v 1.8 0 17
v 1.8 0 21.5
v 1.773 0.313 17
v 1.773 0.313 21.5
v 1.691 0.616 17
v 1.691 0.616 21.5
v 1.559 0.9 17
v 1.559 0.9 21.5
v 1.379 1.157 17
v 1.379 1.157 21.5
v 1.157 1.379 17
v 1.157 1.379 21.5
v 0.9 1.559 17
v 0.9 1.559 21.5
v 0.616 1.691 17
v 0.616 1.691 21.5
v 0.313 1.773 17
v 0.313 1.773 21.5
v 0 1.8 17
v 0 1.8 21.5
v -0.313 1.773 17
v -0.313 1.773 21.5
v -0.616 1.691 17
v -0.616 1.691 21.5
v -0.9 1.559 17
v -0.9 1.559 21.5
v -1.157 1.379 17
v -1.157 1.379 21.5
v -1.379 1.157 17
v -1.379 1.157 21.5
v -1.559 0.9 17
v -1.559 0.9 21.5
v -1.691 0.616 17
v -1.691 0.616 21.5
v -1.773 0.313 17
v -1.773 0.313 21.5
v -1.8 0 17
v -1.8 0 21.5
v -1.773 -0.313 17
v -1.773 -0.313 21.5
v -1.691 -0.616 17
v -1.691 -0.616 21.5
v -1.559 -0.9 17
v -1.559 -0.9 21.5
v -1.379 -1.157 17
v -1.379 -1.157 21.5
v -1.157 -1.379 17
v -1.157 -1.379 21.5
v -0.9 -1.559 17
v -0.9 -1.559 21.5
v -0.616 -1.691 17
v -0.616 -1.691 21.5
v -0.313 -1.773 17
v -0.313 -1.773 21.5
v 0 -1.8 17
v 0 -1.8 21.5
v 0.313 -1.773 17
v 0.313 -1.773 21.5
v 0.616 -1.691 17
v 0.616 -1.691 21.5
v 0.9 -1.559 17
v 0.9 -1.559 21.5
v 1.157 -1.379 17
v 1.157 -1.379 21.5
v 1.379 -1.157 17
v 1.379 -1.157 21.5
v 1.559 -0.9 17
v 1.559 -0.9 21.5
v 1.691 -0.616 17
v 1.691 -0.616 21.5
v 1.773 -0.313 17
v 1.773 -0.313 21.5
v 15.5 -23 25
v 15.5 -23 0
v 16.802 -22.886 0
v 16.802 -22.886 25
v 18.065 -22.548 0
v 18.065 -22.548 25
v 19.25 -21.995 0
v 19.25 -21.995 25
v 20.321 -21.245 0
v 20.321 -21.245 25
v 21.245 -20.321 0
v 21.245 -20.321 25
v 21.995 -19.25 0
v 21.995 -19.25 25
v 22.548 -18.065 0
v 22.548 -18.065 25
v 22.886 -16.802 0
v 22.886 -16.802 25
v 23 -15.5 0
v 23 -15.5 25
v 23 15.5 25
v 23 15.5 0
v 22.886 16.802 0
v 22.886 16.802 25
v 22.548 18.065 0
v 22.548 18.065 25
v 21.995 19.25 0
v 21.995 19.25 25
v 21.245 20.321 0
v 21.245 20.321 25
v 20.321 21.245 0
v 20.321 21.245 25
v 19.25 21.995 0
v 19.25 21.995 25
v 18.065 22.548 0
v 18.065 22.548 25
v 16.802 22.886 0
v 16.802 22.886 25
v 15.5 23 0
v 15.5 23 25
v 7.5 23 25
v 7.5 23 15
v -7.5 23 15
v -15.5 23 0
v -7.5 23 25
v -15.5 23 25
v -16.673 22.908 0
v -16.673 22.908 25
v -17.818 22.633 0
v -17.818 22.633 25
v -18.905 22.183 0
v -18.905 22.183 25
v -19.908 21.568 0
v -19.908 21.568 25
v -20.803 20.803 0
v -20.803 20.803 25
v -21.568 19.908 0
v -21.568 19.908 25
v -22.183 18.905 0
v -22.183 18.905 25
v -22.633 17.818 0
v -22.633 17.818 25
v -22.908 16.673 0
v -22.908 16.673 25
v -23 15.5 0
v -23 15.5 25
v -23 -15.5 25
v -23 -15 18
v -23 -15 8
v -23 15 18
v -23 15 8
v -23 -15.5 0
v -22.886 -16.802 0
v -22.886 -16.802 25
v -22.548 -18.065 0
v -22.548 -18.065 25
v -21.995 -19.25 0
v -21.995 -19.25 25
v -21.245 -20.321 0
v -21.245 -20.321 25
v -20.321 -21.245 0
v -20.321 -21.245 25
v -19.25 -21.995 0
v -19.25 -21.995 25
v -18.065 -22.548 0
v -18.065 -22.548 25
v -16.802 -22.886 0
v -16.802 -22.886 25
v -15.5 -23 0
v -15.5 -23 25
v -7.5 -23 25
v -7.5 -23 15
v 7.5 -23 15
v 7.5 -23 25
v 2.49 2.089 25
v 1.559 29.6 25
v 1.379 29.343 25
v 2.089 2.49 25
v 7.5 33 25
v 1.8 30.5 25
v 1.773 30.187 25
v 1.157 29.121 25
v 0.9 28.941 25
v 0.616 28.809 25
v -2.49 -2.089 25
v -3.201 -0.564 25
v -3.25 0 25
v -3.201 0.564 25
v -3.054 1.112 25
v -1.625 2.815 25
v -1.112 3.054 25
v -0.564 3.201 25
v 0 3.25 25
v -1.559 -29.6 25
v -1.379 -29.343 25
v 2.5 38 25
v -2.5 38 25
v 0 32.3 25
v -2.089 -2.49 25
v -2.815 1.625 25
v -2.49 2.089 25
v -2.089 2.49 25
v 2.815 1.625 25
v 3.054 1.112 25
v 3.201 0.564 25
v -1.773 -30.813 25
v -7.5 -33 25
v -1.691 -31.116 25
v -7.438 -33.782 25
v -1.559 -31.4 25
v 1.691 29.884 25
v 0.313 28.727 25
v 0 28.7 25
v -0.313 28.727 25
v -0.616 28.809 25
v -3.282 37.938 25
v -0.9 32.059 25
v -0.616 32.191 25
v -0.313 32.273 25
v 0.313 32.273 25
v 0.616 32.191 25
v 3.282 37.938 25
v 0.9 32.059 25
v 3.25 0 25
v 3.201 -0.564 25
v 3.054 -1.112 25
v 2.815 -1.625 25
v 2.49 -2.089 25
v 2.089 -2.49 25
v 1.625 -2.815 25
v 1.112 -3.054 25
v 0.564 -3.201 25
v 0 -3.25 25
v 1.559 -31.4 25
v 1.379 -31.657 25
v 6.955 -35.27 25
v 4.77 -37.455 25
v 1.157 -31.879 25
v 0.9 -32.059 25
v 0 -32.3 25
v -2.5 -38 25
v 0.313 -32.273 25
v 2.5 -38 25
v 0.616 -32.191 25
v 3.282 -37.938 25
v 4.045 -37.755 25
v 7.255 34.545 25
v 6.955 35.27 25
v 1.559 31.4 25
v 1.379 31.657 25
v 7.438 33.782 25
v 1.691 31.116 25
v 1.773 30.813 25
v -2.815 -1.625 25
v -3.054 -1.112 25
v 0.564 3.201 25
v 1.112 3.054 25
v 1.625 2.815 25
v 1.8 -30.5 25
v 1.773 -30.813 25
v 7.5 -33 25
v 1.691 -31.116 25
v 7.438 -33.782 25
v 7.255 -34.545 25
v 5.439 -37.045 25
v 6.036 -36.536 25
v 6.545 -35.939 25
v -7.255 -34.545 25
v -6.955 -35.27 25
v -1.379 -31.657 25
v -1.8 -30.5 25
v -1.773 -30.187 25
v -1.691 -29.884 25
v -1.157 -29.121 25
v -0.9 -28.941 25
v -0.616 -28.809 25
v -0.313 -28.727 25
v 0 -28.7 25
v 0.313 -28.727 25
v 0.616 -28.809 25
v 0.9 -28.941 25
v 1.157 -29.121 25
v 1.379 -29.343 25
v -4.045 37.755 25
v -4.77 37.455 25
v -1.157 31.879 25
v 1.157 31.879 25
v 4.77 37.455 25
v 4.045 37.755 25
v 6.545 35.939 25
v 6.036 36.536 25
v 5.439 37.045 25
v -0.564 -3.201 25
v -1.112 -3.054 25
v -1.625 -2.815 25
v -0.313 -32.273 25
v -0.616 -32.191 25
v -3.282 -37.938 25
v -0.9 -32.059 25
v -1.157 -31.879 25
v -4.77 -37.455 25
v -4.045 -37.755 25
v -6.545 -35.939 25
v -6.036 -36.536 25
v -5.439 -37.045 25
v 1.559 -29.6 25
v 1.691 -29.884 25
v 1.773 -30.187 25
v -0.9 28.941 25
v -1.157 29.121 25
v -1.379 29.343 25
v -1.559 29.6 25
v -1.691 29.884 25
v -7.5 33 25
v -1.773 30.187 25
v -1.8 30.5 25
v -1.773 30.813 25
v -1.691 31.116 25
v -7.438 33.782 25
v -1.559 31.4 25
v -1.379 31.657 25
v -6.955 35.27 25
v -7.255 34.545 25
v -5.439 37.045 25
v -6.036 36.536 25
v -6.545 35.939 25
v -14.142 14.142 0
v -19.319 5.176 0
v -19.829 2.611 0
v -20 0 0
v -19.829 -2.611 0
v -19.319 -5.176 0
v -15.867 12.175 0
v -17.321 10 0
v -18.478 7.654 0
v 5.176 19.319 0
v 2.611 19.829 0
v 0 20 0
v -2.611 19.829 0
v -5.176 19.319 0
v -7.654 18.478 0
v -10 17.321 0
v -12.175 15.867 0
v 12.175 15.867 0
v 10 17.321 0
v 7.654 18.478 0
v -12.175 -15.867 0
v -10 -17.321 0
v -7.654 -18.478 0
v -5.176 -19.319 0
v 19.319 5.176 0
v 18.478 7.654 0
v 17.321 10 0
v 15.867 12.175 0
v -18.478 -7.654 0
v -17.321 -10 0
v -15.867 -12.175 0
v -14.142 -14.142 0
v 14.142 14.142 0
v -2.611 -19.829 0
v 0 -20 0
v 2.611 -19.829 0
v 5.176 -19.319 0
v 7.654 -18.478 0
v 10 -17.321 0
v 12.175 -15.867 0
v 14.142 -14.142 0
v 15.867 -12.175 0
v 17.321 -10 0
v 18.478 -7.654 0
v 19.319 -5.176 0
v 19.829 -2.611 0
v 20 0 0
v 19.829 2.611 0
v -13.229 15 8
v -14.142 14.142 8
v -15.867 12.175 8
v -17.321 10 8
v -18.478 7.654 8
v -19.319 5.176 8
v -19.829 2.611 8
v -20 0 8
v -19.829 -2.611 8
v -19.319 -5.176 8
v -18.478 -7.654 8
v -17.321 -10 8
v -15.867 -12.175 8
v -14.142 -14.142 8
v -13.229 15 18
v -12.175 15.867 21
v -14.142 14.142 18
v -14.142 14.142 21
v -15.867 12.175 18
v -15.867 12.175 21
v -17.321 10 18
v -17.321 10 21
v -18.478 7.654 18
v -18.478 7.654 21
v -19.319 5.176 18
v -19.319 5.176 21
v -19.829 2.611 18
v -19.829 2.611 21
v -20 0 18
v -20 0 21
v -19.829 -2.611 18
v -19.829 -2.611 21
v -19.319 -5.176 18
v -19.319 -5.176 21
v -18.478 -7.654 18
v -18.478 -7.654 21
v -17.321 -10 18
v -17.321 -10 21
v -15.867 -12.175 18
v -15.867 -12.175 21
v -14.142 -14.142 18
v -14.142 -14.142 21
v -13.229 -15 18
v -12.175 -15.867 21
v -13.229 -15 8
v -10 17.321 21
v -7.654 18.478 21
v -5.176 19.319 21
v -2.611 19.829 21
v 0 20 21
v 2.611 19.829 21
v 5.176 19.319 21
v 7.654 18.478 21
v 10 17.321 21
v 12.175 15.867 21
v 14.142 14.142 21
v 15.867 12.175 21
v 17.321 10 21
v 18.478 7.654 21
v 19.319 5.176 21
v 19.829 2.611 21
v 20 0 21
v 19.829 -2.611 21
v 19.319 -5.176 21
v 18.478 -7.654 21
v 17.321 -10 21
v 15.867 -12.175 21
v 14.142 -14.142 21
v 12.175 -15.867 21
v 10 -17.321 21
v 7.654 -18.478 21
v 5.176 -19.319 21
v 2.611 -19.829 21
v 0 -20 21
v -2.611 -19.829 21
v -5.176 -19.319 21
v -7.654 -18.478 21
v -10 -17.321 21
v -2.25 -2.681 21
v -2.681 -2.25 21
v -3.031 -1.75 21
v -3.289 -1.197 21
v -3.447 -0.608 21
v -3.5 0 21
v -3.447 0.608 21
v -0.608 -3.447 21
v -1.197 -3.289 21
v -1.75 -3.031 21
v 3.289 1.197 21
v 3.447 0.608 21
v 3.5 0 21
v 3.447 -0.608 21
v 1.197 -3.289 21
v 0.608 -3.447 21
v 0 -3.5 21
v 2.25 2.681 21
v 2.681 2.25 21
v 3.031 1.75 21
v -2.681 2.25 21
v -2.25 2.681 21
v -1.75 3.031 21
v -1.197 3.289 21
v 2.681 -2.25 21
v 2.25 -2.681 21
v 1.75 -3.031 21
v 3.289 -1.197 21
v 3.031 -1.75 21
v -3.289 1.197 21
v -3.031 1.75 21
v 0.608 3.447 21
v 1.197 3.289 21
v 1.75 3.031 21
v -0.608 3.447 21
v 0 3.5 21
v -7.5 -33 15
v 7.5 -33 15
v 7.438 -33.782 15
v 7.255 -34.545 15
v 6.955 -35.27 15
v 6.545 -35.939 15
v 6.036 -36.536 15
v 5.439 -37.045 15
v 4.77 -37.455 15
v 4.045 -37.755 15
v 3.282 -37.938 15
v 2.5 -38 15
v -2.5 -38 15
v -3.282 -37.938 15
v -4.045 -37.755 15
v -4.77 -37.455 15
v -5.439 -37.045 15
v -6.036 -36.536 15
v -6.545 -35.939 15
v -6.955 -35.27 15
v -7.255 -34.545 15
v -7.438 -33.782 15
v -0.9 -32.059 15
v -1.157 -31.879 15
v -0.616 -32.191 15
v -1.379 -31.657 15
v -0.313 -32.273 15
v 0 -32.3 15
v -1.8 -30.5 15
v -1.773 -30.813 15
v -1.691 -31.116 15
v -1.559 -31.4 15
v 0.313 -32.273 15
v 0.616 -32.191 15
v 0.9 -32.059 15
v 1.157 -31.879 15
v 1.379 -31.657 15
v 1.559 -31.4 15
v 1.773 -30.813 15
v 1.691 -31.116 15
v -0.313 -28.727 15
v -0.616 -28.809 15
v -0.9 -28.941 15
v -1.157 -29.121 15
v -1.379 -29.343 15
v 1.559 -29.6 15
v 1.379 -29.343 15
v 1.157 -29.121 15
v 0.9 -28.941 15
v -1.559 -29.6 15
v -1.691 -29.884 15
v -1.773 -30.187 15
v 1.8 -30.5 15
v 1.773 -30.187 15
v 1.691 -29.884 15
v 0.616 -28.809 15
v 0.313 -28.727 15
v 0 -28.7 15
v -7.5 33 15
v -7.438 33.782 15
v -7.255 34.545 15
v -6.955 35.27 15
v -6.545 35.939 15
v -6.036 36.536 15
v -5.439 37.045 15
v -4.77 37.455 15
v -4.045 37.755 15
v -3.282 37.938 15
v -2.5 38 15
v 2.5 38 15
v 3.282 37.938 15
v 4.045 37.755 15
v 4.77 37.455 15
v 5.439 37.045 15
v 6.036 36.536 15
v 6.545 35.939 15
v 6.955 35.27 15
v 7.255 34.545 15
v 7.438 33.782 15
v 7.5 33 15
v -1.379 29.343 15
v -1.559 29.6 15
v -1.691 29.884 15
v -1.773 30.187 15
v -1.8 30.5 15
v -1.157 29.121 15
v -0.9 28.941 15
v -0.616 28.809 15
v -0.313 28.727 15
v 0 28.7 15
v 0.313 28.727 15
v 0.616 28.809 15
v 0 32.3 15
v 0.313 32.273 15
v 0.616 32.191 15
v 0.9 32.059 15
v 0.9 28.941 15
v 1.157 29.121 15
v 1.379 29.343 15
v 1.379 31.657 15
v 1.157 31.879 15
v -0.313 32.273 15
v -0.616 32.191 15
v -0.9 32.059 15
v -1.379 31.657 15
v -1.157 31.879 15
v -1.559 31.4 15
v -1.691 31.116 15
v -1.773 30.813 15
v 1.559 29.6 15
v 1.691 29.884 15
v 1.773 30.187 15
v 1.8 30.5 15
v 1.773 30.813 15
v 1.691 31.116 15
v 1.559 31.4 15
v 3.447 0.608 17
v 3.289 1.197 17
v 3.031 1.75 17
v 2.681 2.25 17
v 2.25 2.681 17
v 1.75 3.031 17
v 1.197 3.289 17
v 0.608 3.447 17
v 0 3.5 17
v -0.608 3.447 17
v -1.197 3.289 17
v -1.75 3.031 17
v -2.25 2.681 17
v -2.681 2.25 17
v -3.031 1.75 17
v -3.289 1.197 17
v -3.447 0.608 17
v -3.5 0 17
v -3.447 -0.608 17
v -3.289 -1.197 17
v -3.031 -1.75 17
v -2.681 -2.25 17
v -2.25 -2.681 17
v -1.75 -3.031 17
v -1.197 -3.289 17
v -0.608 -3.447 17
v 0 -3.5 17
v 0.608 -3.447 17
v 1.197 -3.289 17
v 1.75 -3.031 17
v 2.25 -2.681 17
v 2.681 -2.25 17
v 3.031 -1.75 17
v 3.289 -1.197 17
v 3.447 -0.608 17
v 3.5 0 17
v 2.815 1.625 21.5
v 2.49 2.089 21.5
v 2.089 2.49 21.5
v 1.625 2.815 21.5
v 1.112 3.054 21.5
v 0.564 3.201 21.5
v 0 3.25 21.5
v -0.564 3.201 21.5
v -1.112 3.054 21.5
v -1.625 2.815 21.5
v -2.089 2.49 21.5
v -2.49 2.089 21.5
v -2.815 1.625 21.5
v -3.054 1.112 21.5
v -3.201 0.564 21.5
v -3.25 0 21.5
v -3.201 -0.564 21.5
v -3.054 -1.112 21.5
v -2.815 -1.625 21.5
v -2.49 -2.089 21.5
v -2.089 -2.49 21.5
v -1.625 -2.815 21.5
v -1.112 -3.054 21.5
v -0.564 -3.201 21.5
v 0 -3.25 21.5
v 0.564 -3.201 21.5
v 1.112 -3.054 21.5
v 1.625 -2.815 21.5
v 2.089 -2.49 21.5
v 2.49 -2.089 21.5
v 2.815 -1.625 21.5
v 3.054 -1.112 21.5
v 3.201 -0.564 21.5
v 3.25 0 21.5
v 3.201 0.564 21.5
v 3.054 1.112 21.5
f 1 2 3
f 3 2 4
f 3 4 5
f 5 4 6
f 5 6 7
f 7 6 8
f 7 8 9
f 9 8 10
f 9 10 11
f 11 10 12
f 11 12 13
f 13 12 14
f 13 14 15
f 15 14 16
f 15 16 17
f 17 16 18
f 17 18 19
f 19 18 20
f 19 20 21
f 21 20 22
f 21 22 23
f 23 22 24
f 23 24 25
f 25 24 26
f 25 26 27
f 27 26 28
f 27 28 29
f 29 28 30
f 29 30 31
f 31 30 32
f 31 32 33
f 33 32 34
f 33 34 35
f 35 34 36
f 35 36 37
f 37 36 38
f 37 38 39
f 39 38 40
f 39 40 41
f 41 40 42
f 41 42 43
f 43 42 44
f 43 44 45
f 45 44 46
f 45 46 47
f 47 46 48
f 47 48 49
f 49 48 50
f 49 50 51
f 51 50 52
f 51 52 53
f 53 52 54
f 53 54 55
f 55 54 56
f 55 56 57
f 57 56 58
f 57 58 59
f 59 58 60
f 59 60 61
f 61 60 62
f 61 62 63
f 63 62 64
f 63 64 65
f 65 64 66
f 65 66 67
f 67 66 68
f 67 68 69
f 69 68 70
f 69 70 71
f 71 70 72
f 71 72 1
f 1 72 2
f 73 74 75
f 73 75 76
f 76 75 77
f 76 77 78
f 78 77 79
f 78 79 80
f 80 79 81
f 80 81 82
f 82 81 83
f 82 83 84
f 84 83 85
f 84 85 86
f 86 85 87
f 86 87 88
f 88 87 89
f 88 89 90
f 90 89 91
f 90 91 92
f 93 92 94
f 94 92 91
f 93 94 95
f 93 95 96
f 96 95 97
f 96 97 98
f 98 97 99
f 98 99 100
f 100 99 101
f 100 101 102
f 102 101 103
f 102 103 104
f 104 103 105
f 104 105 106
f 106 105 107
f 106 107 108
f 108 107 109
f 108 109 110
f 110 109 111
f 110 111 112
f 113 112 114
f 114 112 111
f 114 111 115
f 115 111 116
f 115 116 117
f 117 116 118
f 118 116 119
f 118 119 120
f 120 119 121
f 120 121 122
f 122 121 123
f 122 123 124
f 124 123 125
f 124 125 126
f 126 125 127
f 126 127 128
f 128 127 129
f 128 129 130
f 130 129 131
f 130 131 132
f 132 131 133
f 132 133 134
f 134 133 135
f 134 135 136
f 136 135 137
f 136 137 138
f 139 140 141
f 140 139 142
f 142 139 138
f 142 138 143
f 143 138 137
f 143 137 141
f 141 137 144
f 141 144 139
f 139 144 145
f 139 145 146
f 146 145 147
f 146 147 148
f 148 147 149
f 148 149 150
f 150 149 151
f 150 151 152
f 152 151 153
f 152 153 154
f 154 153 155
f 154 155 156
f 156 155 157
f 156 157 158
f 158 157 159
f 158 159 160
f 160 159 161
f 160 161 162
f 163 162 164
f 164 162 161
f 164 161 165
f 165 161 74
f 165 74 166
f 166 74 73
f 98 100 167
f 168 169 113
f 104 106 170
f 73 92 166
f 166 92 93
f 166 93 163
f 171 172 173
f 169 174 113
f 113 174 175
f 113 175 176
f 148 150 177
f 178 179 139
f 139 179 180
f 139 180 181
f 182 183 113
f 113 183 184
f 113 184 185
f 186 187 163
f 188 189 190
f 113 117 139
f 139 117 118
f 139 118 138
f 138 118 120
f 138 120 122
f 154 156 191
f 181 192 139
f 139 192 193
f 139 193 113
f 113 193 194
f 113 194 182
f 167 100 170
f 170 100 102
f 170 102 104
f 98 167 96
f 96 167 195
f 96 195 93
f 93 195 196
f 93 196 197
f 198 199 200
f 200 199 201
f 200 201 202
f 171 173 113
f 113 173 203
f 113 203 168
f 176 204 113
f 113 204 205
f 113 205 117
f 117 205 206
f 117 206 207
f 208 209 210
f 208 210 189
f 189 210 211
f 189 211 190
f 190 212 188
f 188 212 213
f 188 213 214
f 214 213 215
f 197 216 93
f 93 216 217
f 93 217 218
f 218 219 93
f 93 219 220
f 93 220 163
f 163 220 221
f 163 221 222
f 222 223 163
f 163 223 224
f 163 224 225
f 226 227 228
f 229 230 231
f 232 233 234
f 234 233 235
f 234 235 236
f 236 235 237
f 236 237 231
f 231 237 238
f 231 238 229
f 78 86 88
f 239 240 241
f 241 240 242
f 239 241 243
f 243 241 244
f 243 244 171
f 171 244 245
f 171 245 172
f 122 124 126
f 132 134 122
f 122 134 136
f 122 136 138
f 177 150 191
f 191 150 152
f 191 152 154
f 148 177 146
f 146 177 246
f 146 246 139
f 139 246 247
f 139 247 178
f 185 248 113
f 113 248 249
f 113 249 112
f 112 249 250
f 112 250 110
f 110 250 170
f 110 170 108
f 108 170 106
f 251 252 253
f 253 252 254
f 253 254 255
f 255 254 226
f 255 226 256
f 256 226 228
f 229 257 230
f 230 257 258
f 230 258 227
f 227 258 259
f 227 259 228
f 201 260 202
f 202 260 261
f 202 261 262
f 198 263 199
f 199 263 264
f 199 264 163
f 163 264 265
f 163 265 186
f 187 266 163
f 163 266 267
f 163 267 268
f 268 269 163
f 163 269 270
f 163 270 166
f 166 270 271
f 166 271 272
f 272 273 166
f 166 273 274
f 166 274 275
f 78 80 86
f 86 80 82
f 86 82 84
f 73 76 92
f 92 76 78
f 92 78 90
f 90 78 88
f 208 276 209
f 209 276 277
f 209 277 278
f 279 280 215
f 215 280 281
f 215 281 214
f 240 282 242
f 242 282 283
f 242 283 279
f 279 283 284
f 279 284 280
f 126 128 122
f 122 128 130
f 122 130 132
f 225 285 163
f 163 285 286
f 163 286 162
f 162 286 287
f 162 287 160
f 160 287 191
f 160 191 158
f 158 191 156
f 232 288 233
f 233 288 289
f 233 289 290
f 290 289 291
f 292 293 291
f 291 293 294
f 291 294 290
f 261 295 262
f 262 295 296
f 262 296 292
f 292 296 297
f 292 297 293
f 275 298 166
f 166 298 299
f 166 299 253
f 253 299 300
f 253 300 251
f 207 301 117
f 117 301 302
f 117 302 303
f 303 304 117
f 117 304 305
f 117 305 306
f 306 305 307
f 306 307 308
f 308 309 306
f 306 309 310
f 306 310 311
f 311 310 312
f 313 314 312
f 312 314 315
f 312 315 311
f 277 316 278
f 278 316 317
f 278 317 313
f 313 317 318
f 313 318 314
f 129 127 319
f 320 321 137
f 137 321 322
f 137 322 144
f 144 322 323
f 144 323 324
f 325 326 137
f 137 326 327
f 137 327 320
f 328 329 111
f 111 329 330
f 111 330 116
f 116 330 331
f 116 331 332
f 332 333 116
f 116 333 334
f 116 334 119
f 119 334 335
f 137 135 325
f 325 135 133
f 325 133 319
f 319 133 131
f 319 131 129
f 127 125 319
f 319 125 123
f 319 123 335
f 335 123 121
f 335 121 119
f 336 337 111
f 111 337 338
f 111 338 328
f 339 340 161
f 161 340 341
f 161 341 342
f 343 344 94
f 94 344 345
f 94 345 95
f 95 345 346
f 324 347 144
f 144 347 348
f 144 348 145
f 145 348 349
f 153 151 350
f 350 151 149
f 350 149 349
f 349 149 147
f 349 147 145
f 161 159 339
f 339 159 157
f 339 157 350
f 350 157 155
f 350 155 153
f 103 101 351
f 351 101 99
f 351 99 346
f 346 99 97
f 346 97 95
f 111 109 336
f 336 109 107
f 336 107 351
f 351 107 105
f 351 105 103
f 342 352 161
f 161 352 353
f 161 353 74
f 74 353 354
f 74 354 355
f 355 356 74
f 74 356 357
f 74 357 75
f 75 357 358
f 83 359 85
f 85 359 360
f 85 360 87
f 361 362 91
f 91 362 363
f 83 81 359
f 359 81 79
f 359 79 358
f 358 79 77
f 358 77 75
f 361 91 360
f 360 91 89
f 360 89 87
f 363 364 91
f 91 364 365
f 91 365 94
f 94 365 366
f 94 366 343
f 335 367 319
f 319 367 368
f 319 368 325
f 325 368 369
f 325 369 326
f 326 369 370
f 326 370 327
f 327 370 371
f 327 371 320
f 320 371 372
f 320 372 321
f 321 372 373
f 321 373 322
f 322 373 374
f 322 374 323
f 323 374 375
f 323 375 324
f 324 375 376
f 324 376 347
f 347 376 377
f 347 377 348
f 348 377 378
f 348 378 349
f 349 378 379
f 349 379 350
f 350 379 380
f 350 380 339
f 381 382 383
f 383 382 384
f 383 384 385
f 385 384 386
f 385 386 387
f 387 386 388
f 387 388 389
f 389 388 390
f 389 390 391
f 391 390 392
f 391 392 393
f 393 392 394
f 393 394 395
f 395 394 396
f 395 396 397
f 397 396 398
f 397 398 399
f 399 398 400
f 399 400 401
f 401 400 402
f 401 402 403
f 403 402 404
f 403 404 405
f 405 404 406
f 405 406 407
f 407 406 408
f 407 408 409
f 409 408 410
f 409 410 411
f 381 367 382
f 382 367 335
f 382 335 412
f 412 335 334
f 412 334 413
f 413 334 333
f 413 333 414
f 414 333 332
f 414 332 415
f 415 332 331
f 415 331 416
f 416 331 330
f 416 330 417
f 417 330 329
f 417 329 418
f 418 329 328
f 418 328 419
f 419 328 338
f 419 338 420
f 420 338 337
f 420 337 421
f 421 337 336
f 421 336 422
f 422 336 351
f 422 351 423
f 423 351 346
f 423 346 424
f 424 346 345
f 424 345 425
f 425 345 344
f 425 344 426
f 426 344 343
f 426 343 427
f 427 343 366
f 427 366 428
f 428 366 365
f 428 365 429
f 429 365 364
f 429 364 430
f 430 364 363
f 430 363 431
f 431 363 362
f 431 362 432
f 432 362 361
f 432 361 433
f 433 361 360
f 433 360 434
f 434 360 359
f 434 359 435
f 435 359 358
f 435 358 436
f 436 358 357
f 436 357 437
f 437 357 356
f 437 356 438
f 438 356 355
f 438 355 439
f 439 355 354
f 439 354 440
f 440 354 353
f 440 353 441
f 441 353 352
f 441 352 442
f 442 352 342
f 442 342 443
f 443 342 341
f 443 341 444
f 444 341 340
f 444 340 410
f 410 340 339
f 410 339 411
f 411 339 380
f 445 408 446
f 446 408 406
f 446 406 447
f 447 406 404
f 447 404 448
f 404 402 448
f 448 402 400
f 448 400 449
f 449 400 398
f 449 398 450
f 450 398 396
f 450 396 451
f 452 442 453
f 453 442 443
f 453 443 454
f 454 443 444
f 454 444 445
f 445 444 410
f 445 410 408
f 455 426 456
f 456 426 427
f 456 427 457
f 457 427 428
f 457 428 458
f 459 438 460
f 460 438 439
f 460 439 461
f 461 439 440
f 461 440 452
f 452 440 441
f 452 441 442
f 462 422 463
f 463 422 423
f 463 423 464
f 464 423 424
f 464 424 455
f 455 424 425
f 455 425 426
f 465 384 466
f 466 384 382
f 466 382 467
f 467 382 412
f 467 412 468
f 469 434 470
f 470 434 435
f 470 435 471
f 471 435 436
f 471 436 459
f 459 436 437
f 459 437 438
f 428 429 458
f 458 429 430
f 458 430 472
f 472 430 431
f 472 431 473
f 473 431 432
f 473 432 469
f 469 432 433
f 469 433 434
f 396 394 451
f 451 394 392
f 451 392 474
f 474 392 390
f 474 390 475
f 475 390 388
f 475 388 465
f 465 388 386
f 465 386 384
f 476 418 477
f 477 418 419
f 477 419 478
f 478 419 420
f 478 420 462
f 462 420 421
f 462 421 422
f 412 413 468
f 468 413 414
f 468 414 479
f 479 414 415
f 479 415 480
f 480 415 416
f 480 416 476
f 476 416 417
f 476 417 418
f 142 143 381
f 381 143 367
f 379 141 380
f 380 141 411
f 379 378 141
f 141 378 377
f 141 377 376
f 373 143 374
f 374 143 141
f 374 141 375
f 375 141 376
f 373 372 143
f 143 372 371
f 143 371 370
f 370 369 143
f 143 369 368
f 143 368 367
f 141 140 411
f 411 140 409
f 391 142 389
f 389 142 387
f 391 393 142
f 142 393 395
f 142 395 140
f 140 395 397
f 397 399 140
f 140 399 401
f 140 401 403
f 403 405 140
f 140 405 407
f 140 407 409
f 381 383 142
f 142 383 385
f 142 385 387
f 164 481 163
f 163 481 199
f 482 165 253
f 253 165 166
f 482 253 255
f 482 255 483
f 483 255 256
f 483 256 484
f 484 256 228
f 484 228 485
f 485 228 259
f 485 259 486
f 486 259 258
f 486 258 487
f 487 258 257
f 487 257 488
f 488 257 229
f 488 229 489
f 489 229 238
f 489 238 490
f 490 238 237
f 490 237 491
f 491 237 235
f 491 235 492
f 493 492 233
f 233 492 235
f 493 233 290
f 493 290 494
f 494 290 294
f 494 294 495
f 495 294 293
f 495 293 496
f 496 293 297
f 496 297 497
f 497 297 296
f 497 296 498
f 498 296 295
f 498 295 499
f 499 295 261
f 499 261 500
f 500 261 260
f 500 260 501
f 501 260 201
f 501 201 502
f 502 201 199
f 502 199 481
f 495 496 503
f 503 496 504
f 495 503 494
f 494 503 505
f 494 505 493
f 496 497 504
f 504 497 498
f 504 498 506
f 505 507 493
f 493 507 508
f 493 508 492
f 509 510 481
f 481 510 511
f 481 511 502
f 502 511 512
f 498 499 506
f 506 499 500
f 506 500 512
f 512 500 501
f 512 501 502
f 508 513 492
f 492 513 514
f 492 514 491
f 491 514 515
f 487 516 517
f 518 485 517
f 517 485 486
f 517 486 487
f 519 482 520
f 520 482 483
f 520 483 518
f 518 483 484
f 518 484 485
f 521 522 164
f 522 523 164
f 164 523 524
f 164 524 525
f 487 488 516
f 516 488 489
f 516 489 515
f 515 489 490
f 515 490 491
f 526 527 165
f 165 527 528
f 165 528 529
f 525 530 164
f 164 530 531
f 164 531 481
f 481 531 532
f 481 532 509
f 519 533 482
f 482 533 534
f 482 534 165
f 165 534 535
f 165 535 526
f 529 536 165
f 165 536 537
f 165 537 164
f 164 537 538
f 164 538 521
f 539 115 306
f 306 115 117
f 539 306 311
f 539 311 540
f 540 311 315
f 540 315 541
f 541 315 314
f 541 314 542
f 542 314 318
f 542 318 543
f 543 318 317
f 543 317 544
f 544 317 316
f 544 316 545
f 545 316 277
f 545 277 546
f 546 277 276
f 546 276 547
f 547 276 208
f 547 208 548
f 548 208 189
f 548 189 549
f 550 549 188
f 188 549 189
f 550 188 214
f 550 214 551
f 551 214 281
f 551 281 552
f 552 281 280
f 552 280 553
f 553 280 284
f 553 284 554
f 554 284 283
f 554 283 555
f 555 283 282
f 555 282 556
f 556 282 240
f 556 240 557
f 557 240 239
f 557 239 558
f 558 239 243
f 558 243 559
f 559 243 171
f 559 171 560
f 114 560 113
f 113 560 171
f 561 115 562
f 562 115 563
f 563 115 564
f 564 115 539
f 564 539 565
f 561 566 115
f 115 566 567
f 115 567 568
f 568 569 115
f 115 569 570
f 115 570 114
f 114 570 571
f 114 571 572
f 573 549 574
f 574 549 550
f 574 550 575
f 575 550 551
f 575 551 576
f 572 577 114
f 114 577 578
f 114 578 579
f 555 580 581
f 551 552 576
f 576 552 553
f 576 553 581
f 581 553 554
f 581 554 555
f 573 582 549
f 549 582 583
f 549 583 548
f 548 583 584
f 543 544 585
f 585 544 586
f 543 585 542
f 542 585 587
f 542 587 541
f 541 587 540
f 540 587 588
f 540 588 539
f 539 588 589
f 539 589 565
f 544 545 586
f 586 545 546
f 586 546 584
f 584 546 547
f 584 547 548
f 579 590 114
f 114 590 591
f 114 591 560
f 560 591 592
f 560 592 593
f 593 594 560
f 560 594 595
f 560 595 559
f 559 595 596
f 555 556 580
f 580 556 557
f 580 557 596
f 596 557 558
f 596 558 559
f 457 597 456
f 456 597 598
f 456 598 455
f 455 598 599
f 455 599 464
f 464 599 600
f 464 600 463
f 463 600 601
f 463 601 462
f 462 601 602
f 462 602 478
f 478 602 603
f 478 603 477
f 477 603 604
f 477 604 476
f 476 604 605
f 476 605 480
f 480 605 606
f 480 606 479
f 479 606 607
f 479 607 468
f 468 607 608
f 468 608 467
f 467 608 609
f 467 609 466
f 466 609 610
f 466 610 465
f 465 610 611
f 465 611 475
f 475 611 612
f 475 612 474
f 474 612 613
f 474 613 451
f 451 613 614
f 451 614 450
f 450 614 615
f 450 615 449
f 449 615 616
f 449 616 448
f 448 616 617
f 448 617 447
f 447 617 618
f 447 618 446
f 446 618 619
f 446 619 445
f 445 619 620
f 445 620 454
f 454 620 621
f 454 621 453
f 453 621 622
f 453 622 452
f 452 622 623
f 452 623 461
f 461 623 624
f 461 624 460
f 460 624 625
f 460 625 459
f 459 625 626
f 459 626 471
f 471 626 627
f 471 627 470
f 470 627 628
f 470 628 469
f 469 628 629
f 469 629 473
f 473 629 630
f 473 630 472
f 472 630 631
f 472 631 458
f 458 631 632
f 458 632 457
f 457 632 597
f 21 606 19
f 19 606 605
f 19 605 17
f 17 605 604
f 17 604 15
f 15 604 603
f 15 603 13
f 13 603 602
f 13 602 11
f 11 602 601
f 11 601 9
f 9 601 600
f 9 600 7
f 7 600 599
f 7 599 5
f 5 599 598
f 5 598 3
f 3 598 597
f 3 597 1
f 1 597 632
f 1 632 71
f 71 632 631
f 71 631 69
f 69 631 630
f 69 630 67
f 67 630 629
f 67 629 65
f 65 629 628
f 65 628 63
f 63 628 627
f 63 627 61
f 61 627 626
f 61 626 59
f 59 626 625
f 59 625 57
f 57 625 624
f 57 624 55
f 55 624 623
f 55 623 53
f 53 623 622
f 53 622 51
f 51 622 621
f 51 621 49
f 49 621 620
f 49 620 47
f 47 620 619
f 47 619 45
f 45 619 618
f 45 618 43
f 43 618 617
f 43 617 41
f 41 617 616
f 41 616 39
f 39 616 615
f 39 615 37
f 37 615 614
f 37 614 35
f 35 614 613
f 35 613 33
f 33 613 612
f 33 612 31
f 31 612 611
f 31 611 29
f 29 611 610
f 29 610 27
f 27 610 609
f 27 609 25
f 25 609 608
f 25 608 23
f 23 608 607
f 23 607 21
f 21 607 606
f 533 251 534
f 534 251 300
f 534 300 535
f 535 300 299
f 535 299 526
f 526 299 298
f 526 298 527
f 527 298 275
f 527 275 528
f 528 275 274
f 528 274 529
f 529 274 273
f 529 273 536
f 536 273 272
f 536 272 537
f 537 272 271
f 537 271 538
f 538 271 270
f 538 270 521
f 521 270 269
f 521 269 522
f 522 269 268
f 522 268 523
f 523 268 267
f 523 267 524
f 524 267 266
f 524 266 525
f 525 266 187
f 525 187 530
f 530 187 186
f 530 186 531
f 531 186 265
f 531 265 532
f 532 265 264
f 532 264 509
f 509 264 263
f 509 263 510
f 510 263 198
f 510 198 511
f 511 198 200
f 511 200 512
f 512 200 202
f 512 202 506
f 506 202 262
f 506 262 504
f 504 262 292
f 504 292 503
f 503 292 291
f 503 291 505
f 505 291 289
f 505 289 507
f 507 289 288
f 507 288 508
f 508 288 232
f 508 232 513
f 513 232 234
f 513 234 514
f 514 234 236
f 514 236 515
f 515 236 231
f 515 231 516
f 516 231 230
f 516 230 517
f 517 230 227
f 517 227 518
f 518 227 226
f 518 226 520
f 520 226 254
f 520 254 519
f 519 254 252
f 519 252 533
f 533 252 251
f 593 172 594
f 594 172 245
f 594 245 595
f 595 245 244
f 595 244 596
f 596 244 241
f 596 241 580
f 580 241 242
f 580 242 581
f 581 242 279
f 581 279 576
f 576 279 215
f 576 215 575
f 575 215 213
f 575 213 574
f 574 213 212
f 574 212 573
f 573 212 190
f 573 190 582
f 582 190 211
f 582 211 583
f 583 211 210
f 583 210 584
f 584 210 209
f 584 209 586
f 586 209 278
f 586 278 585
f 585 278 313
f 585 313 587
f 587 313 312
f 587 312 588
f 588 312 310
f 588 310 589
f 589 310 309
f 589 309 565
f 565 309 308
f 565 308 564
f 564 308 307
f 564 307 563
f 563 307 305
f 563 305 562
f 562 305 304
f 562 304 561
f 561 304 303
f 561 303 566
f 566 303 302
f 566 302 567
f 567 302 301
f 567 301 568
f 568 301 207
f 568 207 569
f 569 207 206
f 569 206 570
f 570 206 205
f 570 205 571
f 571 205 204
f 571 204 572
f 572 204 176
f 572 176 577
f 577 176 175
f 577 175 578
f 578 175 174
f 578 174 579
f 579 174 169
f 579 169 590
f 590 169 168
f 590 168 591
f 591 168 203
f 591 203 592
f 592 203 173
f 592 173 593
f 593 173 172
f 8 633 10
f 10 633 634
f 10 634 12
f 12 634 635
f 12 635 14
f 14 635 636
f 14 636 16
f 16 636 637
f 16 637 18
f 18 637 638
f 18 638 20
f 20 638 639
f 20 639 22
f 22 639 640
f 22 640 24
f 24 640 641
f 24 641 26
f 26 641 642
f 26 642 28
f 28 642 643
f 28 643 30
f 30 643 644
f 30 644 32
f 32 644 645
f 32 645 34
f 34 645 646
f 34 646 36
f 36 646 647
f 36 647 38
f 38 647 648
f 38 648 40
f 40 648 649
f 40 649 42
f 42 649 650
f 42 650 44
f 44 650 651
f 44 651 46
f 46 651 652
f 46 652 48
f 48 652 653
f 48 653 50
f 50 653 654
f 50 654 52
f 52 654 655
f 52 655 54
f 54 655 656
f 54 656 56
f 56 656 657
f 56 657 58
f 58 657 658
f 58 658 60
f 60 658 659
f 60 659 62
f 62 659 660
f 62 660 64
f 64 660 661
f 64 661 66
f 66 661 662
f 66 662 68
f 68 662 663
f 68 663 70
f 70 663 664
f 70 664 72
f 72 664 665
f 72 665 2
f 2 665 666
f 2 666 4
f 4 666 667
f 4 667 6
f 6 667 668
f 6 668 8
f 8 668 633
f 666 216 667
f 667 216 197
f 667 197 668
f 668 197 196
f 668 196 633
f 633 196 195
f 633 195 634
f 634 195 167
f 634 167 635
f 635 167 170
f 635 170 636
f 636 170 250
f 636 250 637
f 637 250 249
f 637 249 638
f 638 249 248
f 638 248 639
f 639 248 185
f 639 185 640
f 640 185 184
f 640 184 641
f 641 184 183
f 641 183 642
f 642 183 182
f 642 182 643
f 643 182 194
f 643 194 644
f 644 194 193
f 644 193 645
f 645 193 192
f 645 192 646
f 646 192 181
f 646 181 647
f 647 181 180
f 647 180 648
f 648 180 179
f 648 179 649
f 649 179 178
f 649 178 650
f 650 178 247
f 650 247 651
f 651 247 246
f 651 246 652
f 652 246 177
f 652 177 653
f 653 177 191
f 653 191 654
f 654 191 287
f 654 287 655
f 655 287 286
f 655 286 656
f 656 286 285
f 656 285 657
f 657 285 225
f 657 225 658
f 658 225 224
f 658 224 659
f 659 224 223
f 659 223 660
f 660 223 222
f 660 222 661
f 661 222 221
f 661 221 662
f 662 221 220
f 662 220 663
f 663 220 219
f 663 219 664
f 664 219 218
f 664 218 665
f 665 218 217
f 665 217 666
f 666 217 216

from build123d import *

# Parameters (mm, degrees)
MAIN_DEPTH               = 25
SKETCH2_R                = 20
PULLEY_HOLE_DEPTH        = 21
PULLEY_OUT_REACH         = 48
SKETCH3_W                = 10
SKETCH3_H                = 30
FIXATION_DEPTH           = 10
SKETCH5_R                = 3.5
BOSS_EXTRUDE3_DEPTH      = 4
M3_CLEARANCE_HOLE2_D     = 3.6
M3_CLEARANCE_HOLE2_DEPTH = 8
M3_CLEARANCE_HOLE3_D     = 3.6
M3_CLEARANCE_HOLE3_DEPTH = 10
M3_CLEARANCE_HOLE4_D     = 3.6
M3_CLEARANCE_HOLE4_DEPTH = 10
SKETCH15_R               = 3.25
CUT_EXTRUDE1_DEPTH       = 3.5


with BuildPart() as part:
    # Sketch1 → Main (new body)
    with BuildSketch(Plane.XY):
        with BuildLine():
            Line((-15.5, 23), (15.5, 23))
            ThreePointArc((15.5, 23), (20.803300859, 20.803300859), (23, 15.5))
            Line((23, 15.5), (23, -15.5))
            ThreePointArc((23, -15.5), (20.803300859, -20.803300859), (15.5, -23))
            Line((15.5, -23), (-15.5, -23))
            ThreePointArc((-15.5, -23), (-20.803300859, -20.803300859), (-23, -15.5))
            Line((-23, -15.5), (-23, 15.5))
            ThreePointArc((-23, 15.5), (-20.803300859, 20.803300859), (-15.5, 23))
        make_face()
    extrude(amount=MAIN_DEPTH)

    # Sketch2 → Pulley Hole (cut)
    with BuildSketch(Plane(origin=(0, 0, 0), x_dir=(-1, 0, 0), z_dir=(0, 0, -1))):
        Circle(SKETCH2_R)
    extrude(amount=-PULLEY_HOLE_DEPTH, mode=Mode.SUBTRACT)

    # Sketch3 → Pulley Out (cut, up to next)
    with BuildSketch(Plane.ZY.offset(23), mode=Mode.PRIVATE) as pulley_out_sk1:
        with Locations((13, 0)):
            Rectangle(SKETCH3_W, SKETCH3_H)
    pulley_out_tool1 = extrude(pulley_out_sk1.sketch, amount=-PULLEY_OUT_REACH, mode=Mode.PRIVATE) & part.part
    add(pulley_out_tool1.solids().sort_by_distance((-23, 0, 13))[0], mode=Mode.SUBTRACT)

    # Sketch4 → Fixation (add)
    with BuildSketch(Plane.XY.offset(25)):
        with BuildLine():
            Line((-7.5, -23), (7.5, -23))
            Line((7.5, -23), (7.5, -33))
            ThreePointArc((7.5, -33), (6.035533906, -36.535533906), (2.5, -38))
            Line((2.5, -38), (-2.5, -38))
            ThreePointArc((-2.5, -38), (-6.035533906, -36.535533906), (-7.5, -33))
            Line((-7.5, -33), (-7.5, -23))
        make_face()
        with BuildLine():
            Line((-7.5, 23), (7.5, 23))
            Line((7.5, 23), (7.5, 33))
            ThreePointArc((7.5, 33), (6.035533906, 36.535533906), (2.5, 38))
            Line((2.5, 38), (-2.5, 38))
            ThreePointArc((-2.5, 38), (-6.035533906, 36.535533906), (-7.5, 33))
            Line((-7.5, 33), (-7.5, 23))
        make_face()
    extrude(amount=-FIXATION_DEPTH)

    # Sketch5 → Boss-Extrude3 (add)
    with BuildSketch(Plane(origin=(0, 0, 21), x_dir=(-1, 0, 0), z_dir=(0, 0, -1))):
        Circle(SKETCH5_R)
    extrude(amount=BOSS_EXTRUDE3_DEPTH)

    # M3 Clearance Hole2
    with Locations(Plane.XY.offset(25)):
        with Locations((0, 0)):
            Hole(M3_CLEARANCE_HOLE2_D / 2, depth=M3_CLEARANCE_HOLE2_DEPTH)

    # M3 Clearance Hole3
    with Locations(Plane(origin=(0, -30.5, 25), x_dir=(1, 0, 0), z_dir=(0, 0, 1))):
        with Locations((0, 0)):
            Hole(M3_CLEARANCE_HOLE3_D / 2, depth=M3_CLEARANCE_HOLE3_DEPTH)

    # M3 Clearance Hole4
    with Locations(Plane(origin=(0, 30.5, 25), x_dir=(1, 0, 0), z_dir=(0, 0, 1))):
        with Locations((0, 0)):
            Hole(M3_CLEARANCE_HOLE4_D / 2, depth=M3_CLEARANCE_HOLE4_DEPTH)

    # Sketch15 → Cut-Extrude1 (cut)
    with BuildSketch(Plane.XY.offset(25)):
        Circle(SKETCH15_R)
    extrude(amount=-CUT_EXTRUDE1_DEPTH, mode=Mode.SUBTRACT)


solid = part.part
